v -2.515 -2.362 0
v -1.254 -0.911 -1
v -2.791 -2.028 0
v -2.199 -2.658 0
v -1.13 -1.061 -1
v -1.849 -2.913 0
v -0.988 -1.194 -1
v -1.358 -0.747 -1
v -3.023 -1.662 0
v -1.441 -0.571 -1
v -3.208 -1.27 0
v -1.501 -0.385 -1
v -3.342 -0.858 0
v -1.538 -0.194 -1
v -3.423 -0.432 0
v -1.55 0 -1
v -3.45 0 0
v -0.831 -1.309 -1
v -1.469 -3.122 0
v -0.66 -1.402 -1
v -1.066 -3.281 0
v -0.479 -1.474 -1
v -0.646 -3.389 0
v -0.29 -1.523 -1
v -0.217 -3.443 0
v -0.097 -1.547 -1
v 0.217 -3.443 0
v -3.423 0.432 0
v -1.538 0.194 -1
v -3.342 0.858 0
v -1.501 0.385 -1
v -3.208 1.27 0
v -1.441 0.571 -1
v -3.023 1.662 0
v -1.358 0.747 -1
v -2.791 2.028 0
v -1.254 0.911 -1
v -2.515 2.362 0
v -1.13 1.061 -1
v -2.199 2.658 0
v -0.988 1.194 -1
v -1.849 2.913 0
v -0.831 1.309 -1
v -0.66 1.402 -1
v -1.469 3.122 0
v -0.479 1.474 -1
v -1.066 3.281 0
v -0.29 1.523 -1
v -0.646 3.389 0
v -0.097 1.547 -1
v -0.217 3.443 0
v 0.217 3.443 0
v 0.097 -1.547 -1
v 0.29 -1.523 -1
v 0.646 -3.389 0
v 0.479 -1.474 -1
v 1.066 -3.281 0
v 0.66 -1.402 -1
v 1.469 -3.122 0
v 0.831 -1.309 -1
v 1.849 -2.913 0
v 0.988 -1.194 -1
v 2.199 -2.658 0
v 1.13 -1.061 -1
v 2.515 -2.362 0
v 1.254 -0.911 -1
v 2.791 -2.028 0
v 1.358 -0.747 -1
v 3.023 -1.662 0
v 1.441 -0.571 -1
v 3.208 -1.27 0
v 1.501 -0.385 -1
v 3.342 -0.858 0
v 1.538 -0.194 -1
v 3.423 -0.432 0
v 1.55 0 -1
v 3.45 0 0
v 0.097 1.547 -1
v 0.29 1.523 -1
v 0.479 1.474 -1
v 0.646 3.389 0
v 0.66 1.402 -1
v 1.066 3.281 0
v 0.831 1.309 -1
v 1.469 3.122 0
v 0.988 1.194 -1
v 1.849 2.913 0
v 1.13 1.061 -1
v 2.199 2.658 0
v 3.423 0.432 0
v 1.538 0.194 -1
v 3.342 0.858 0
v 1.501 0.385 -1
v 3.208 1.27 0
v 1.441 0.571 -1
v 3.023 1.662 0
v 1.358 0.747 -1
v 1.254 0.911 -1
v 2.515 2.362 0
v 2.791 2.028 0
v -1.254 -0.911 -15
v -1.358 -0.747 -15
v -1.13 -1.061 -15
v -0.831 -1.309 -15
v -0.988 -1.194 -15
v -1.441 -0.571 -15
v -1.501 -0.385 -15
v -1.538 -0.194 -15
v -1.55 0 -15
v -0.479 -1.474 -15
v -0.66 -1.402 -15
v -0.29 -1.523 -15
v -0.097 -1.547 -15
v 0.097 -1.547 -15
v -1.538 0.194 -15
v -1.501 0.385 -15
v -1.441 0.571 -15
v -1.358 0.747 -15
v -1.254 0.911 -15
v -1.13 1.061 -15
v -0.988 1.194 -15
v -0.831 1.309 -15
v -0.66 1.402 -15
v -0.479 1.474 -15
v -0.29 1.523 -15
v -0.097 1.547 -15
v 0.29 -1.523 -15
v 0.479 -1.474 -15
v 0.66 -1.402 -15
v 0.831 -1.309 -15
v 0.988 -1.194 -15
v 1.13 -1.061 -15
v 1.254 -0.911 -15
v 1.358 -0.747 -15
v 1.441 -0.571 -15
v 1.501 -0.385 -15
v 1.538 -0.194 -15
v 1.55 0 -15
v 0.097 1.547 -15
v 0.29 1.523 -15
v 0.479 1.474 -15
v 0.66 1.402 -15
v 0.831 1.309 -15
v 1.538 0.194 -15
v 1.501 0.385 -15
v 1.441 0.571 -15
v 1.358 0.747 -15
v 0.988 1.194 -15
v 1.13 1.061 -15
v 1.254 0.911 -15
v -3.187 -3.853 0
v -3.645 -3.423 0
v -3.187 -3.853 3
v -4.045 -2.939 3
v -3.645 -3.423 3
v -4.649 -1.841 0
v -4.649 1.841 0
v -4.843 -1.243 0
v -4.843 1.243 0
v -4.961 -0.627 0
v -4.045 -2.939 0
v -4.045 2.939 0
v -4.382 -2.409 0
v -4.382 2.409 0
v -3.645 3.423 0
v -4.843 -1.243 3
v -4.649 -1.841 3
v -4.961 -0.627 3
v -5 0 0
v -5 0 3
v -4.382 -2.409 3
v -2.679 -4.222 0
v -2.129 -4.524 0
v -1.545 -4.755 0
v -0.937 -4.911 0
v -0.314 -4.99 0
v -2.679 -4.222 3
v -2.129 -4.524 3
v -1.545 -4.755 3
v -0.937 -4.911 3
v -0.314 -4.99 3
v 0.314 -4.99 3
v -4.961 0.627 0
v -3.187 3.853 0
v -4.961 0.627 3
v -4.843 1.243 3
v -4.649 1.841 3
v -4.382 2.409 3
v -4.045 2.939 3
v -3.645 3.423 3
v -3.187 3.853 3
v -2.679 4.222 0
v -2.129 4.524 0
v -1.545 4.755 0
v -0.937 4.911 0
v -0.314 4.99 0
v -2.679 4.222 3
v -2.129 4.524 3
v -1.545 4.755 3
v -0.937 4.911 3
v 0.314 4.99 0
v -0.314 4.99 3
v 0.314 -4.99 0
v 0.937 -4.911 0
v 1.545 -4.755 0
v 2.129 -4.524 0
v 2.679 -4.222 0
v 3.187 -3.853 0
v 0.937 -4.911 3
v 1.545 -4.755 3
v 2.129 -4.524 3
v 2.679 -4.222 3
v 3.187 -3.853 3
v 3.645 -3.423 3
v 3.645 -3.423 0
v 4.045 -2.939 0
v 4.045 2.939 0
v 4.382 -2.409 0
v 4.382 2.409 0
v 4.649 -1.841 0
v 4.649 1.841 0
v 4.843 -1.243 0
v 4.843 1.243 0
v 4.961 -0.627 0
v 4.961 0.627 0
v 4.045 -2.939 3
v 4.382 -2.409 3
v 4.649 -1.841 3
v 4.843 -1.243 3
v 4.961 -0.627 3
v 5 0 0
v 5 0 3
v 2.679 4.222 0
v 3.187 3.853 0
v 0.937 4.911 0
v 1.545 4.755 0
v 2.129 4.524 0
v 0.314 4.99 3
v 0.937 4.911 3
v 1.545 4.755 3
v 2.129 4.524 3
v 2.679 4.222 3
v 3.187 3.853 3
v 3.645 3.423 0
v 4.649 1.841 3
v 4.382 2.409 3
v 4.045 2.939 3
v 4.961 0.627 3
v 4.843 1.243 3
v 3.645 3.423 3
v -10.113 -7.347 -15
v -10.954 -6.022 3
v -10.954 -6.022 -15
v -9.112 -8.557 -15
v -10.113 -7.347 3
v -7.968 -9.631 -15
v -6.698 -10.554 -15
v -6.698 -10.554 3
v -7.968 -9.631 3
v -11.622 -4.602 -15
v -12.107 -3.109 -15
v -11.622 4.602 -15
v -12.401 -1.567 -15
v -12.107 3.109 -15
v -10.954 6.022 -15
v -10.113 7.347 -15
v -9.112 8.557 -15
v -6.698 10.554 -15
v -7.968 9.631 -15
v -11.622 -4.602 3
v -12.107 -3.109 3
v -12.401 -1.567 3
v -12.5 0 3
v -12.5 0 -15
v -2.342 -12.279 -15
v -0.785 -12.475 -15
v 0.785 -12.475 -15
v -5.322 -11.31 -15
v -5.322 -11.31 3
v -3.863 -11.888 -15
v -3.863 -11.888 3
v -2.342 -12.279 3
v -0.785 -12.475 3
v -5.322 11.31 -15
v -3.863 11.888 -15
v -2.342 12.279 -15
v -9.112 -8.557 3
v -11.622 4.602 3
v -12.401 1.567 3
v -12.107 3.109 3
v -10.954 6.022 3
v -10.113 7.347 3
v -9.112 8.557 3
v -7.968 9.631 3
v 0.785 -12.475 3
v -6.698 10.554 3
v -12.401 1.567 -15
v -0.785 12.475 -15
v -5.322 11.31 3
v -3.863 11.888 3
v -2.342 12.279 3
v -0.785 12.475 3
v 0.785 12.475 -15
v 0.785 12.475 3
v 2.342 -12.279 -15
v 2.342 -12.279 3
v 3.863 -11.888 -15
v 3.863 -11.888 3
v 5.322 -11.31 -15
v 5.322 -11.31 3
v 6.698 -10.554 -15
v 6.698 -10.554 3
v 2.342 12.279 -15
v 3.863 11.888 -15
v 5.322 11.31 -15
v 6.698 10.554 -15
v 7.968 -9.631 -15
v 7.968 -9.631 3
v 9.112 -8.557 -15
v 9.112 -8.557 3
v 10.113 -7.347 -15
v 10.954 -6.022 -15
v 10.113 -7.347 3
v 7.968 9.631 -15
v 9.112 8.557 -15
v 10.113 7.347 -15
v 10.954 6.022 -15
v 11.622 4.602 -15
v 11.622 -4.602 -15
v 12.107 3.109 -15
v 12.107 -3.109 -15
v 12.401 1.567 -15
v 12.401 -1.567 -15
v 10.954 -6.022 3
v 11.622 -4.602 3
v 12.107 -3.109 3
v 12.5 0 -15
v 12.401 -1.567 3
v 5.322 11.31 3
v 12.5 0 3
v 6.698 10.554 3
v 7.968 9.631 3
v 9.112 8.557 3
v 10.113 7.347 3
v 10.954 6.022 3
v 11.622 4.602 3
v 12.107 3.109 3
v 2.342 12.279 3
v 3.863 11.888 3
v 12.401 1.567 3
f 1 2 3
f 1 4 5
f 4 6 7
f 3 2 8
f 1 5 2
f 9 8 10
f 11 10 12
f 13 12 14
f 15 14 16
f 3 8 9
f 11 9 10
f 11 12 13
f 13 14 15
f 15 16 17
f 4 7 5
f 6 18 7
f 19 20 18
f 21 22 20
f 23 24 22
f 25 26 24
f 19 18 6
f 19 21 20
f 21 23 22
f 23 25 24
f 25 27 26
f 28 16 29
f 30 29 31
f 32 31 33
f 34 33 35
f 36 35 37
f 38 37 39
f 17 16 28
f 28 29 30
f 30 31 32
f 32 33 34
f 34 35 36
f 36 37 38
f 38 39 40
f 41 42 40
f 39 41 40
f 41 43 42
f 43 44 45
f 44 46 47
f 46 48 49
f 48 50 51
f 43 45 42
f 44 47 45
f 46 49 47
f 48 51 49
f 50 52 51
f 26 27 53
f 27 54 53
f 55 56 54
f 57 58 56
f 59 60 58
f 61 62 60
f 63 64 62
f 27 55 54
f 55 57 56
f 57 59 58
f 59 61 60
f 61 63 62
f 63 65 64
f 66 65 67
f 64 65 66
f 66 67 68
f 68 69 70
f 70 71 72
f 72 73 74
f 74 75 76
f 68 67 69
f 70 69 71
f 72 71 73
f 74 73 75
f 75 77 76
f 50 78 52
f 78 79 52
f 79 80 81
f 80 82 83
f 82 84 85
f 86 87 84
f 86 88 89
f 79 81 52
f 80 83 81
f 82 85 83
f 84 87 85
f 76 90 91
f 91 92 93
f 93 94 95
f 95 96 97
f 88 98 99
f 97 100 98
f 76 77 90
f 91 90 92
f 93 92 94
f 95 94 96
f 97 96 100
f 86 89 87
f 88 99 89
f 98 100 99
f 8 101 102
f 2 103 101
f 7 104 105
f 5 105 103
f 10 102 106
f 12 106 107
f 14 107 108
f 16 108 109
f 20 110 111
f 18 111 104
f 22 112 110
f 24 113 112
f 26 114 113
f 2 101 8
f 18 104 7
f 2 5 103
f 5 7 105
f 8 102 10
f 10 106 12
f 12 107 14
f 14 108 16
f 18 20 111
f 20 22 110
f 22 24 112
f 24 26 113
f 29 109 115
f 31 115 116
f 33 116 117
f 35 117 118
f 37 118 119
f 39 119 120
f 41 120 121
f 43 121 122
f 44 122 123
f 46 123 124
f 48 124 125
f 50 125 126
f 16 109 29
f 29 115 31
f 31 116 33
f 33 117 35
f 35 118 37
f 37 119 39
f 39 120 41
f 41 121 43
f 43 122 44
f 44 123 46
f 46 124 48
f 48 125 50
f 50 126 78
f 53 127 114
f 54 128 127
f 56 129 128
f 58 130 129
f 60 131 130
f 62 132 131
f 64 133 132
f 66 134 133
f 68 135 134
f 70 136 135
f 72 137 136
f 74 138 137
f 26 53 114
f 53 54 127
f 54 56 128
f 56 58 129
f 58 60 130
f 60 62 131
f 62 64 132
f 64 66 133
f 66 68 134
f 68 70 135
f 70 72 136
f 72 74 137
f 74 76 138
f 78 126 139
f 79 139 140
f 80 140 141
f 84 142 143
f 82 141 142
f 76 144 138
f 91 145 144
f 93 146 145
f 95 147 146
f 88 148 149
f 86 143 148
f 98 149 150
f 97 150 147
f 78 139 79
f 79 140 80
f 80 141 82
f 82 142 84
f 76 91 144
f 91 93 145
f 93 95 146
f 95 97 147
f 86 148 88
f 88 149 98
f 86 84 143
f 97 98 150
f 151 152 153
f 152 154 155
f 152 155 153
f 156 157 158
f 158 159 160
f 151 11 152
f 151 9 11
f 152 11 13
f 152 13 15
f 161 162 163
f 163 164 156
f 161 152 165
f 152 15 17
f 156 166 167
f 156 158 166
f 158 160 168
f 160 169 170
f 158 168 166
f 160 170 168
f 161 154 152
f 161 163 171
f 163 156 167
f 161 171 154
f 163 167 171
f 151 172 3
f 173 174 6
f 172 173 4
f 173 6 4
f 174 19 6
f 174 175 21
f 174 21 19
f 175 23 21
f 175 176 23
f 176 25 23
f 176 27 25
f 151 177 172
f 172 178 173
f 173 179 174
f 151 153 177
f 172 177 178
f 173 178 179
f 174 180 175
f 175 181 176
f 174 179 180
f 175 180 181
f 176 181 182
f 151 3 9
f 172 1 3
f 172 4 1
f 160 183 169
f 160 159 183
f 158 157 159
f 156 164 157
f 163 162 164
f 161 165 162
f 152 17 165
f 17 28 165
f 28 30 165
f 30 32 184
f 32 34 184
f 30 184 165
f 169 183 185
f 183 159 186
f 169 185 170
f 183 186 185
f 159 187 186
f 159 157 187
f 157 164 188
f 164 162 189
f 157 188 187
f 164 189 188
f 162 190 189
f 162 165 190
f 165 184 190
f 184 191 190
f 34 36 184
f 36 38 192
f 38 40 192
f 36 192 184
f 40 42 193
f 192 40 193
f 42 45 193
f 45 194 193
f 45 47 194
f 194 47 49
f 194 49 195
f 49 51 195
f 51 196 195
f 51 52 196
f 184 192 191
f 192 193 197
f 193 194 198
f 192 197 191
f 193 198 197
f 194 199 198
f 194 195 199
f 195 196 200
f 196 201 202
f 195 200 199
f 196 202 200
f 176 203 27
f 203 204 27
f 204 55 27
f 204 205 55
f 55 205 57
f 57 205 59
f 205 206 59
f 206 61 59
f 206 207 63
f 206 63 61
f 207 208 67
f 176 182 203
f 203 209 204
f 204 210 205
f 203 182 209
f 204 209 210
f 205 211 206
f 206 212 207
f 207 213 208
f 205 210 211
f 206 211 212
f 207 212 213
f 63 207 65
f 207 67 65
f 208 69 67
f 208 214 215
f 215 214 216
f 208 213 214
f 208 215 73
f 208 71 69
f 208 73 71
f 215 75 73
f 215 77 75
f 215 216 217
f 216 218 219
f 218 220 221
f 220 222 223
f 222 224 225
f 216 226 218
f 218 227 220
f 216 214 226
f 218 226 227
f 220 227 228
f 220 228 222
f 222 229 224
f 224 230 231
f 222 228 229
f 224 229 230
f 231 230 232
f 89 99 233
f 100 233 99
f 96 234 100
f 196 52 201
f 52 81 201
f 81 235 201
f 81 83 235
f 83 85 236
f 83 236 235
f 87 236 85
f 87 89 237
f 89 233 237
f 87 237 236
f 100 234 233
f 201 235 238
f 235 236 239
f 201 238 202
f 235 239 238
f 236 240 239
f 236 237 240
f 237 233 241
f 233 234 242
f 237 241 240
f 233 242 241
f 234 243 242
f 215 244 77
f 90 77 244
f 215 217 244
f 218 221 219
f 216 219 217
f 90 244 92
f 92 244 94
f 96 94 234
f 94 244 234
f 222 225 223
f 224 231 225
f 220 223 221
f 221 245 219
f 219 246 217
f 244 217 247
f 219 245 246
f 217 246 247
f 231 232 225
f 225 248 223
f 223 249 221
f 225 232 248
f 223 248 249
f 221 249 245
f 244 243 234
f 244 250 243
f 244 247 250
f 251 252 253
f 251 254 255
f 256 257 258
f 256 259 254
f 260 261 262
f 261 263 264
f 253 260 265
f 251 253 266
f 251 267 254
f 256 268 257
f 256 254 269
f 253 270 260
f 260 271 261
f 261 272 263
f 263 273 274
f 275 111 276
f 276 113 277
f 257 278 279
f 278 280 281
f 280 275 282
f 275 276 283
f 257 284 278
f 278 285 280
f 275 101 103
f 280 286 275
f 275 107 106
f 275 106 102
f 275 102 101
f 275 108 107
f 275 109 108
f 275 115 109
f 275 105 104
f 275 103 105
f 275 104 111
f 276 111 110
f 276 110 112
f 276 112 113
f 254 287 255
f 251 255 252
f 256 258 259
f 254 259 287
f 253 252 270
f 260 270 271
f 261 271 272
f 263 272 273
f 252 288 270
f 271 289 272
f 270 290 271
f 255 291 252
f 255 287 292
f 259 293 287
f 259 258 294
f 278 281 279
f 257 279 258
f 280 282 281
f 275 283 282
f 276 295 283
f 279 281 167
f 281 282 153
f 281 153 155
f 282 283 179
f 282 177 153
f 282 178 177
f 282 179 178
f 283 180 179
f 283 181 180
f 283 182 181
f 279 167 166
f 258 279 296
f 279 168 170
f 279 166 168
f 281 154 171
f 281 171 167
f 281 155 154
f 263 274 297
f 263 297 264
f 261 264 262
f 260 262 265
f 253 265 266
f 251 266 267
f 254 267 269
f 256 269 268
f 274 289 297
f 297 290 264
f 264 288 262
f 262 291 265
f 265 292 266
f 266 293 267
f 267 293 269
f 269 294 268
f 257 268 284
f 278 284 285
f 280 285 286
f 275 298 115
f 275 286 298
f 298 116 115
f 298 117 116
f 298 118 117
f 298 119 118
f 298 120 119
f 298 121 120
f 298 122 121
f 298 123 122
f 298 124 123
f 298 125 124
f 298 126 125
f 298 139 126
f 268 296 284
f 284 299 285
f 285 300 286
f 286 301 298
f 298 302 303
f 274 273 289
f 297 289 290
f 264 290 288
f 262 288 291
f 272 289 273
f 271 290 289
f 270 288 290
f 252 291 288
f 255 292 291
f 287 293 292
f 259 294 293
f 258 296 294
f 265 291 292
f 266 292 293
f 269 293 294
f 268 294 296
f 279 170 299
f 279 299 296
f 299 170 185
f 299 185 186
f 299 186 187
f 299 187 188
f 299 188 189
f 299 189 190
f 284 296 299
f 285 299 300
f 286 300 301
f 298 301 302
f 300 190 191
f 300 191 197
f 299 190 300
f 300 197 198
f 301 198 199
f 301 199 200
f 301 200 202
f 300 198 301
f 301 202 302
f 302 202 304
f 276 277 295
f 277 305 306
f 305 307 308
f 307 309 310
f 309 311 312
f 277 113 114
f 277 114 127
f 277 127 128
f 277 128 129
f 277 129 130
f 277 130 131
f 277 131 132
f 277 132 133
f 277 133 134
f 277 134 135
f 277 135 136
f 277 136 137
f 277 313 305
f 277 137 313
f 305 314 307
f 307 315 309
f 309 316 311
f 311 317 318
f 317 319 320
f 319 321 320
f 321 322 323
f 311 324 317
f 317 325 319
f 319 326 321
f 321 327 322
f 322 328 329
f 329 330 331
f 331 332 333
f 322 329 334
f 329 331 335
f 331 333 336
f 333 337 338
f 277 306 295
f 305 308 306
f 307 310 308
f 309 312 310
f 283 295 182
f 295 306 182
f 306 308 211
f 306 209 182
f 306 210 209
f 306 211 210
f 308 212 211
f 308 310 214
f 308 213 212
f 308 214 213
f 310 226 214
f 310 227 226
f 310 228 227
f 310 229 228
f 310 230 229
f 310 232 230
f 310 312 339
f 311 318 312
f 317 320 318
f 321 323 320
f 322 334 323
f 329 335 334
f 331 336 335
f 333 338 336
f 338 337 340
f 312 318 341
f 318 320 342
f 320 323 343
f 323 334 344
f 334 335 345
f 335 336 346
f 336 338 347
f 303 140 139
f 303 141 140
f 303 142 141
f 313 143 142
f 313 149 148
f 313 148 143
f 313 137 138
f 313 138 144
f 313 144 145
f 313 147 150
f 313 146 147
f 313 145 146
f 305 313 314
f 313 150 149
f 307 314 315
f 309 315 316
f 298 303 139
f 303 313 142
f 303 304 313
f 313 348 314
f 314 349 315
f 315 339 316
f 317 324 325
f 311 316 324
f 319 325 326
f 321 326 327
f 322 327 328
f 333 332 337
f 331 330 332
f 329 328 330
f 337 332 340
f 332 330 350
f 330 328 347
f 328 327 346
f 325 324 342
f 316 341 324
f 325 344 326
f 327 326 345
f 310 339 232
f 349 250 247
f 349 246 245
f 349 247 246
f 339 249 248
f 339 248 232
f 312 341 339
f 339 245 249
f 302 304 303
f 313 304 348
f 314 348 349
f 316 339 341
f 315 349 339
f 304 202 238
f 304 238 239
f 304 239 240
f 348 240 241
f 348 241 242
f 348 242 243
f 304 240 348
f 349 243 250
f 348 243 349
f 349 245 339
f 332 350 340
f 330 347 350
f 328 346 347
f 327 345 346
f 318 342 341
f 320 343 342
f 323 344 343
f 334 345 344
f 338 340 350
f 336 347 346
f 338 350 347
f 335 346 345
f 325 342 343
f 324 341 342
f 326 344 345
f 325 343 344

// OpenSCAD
$fn = 50;

difference() {
	union() {
		translate(v = [0, 0, -15.0]) {
			cylinder(h = 18, r = 12.5);
		}
	}
	union() {
		translate(v = [0, 0, 0]) {
			rotate(a = [0, 0, 0]) {
				difference() {
					union() {
						translate(v = [0, 0, -18.0]) {
							cylinder(h = 18, r = 1.25);
						}
						translate(v = [0, 0, -1.0]) {
							cylinder(h = 1.0, r1 = 1.55, r2 = 3.45);
						}
						translate(v = [0, 0, -18.0]) {
							cylinder(h = 18, r = 1.55);
						}
						translate(v = [0, 0, -18.0]) {
							cylinder(h = 18, r = 1.25);
						}
					}
					union();
				}
			}
		}
		#cylinder(h = 3, r = 5.0);
	}
}
